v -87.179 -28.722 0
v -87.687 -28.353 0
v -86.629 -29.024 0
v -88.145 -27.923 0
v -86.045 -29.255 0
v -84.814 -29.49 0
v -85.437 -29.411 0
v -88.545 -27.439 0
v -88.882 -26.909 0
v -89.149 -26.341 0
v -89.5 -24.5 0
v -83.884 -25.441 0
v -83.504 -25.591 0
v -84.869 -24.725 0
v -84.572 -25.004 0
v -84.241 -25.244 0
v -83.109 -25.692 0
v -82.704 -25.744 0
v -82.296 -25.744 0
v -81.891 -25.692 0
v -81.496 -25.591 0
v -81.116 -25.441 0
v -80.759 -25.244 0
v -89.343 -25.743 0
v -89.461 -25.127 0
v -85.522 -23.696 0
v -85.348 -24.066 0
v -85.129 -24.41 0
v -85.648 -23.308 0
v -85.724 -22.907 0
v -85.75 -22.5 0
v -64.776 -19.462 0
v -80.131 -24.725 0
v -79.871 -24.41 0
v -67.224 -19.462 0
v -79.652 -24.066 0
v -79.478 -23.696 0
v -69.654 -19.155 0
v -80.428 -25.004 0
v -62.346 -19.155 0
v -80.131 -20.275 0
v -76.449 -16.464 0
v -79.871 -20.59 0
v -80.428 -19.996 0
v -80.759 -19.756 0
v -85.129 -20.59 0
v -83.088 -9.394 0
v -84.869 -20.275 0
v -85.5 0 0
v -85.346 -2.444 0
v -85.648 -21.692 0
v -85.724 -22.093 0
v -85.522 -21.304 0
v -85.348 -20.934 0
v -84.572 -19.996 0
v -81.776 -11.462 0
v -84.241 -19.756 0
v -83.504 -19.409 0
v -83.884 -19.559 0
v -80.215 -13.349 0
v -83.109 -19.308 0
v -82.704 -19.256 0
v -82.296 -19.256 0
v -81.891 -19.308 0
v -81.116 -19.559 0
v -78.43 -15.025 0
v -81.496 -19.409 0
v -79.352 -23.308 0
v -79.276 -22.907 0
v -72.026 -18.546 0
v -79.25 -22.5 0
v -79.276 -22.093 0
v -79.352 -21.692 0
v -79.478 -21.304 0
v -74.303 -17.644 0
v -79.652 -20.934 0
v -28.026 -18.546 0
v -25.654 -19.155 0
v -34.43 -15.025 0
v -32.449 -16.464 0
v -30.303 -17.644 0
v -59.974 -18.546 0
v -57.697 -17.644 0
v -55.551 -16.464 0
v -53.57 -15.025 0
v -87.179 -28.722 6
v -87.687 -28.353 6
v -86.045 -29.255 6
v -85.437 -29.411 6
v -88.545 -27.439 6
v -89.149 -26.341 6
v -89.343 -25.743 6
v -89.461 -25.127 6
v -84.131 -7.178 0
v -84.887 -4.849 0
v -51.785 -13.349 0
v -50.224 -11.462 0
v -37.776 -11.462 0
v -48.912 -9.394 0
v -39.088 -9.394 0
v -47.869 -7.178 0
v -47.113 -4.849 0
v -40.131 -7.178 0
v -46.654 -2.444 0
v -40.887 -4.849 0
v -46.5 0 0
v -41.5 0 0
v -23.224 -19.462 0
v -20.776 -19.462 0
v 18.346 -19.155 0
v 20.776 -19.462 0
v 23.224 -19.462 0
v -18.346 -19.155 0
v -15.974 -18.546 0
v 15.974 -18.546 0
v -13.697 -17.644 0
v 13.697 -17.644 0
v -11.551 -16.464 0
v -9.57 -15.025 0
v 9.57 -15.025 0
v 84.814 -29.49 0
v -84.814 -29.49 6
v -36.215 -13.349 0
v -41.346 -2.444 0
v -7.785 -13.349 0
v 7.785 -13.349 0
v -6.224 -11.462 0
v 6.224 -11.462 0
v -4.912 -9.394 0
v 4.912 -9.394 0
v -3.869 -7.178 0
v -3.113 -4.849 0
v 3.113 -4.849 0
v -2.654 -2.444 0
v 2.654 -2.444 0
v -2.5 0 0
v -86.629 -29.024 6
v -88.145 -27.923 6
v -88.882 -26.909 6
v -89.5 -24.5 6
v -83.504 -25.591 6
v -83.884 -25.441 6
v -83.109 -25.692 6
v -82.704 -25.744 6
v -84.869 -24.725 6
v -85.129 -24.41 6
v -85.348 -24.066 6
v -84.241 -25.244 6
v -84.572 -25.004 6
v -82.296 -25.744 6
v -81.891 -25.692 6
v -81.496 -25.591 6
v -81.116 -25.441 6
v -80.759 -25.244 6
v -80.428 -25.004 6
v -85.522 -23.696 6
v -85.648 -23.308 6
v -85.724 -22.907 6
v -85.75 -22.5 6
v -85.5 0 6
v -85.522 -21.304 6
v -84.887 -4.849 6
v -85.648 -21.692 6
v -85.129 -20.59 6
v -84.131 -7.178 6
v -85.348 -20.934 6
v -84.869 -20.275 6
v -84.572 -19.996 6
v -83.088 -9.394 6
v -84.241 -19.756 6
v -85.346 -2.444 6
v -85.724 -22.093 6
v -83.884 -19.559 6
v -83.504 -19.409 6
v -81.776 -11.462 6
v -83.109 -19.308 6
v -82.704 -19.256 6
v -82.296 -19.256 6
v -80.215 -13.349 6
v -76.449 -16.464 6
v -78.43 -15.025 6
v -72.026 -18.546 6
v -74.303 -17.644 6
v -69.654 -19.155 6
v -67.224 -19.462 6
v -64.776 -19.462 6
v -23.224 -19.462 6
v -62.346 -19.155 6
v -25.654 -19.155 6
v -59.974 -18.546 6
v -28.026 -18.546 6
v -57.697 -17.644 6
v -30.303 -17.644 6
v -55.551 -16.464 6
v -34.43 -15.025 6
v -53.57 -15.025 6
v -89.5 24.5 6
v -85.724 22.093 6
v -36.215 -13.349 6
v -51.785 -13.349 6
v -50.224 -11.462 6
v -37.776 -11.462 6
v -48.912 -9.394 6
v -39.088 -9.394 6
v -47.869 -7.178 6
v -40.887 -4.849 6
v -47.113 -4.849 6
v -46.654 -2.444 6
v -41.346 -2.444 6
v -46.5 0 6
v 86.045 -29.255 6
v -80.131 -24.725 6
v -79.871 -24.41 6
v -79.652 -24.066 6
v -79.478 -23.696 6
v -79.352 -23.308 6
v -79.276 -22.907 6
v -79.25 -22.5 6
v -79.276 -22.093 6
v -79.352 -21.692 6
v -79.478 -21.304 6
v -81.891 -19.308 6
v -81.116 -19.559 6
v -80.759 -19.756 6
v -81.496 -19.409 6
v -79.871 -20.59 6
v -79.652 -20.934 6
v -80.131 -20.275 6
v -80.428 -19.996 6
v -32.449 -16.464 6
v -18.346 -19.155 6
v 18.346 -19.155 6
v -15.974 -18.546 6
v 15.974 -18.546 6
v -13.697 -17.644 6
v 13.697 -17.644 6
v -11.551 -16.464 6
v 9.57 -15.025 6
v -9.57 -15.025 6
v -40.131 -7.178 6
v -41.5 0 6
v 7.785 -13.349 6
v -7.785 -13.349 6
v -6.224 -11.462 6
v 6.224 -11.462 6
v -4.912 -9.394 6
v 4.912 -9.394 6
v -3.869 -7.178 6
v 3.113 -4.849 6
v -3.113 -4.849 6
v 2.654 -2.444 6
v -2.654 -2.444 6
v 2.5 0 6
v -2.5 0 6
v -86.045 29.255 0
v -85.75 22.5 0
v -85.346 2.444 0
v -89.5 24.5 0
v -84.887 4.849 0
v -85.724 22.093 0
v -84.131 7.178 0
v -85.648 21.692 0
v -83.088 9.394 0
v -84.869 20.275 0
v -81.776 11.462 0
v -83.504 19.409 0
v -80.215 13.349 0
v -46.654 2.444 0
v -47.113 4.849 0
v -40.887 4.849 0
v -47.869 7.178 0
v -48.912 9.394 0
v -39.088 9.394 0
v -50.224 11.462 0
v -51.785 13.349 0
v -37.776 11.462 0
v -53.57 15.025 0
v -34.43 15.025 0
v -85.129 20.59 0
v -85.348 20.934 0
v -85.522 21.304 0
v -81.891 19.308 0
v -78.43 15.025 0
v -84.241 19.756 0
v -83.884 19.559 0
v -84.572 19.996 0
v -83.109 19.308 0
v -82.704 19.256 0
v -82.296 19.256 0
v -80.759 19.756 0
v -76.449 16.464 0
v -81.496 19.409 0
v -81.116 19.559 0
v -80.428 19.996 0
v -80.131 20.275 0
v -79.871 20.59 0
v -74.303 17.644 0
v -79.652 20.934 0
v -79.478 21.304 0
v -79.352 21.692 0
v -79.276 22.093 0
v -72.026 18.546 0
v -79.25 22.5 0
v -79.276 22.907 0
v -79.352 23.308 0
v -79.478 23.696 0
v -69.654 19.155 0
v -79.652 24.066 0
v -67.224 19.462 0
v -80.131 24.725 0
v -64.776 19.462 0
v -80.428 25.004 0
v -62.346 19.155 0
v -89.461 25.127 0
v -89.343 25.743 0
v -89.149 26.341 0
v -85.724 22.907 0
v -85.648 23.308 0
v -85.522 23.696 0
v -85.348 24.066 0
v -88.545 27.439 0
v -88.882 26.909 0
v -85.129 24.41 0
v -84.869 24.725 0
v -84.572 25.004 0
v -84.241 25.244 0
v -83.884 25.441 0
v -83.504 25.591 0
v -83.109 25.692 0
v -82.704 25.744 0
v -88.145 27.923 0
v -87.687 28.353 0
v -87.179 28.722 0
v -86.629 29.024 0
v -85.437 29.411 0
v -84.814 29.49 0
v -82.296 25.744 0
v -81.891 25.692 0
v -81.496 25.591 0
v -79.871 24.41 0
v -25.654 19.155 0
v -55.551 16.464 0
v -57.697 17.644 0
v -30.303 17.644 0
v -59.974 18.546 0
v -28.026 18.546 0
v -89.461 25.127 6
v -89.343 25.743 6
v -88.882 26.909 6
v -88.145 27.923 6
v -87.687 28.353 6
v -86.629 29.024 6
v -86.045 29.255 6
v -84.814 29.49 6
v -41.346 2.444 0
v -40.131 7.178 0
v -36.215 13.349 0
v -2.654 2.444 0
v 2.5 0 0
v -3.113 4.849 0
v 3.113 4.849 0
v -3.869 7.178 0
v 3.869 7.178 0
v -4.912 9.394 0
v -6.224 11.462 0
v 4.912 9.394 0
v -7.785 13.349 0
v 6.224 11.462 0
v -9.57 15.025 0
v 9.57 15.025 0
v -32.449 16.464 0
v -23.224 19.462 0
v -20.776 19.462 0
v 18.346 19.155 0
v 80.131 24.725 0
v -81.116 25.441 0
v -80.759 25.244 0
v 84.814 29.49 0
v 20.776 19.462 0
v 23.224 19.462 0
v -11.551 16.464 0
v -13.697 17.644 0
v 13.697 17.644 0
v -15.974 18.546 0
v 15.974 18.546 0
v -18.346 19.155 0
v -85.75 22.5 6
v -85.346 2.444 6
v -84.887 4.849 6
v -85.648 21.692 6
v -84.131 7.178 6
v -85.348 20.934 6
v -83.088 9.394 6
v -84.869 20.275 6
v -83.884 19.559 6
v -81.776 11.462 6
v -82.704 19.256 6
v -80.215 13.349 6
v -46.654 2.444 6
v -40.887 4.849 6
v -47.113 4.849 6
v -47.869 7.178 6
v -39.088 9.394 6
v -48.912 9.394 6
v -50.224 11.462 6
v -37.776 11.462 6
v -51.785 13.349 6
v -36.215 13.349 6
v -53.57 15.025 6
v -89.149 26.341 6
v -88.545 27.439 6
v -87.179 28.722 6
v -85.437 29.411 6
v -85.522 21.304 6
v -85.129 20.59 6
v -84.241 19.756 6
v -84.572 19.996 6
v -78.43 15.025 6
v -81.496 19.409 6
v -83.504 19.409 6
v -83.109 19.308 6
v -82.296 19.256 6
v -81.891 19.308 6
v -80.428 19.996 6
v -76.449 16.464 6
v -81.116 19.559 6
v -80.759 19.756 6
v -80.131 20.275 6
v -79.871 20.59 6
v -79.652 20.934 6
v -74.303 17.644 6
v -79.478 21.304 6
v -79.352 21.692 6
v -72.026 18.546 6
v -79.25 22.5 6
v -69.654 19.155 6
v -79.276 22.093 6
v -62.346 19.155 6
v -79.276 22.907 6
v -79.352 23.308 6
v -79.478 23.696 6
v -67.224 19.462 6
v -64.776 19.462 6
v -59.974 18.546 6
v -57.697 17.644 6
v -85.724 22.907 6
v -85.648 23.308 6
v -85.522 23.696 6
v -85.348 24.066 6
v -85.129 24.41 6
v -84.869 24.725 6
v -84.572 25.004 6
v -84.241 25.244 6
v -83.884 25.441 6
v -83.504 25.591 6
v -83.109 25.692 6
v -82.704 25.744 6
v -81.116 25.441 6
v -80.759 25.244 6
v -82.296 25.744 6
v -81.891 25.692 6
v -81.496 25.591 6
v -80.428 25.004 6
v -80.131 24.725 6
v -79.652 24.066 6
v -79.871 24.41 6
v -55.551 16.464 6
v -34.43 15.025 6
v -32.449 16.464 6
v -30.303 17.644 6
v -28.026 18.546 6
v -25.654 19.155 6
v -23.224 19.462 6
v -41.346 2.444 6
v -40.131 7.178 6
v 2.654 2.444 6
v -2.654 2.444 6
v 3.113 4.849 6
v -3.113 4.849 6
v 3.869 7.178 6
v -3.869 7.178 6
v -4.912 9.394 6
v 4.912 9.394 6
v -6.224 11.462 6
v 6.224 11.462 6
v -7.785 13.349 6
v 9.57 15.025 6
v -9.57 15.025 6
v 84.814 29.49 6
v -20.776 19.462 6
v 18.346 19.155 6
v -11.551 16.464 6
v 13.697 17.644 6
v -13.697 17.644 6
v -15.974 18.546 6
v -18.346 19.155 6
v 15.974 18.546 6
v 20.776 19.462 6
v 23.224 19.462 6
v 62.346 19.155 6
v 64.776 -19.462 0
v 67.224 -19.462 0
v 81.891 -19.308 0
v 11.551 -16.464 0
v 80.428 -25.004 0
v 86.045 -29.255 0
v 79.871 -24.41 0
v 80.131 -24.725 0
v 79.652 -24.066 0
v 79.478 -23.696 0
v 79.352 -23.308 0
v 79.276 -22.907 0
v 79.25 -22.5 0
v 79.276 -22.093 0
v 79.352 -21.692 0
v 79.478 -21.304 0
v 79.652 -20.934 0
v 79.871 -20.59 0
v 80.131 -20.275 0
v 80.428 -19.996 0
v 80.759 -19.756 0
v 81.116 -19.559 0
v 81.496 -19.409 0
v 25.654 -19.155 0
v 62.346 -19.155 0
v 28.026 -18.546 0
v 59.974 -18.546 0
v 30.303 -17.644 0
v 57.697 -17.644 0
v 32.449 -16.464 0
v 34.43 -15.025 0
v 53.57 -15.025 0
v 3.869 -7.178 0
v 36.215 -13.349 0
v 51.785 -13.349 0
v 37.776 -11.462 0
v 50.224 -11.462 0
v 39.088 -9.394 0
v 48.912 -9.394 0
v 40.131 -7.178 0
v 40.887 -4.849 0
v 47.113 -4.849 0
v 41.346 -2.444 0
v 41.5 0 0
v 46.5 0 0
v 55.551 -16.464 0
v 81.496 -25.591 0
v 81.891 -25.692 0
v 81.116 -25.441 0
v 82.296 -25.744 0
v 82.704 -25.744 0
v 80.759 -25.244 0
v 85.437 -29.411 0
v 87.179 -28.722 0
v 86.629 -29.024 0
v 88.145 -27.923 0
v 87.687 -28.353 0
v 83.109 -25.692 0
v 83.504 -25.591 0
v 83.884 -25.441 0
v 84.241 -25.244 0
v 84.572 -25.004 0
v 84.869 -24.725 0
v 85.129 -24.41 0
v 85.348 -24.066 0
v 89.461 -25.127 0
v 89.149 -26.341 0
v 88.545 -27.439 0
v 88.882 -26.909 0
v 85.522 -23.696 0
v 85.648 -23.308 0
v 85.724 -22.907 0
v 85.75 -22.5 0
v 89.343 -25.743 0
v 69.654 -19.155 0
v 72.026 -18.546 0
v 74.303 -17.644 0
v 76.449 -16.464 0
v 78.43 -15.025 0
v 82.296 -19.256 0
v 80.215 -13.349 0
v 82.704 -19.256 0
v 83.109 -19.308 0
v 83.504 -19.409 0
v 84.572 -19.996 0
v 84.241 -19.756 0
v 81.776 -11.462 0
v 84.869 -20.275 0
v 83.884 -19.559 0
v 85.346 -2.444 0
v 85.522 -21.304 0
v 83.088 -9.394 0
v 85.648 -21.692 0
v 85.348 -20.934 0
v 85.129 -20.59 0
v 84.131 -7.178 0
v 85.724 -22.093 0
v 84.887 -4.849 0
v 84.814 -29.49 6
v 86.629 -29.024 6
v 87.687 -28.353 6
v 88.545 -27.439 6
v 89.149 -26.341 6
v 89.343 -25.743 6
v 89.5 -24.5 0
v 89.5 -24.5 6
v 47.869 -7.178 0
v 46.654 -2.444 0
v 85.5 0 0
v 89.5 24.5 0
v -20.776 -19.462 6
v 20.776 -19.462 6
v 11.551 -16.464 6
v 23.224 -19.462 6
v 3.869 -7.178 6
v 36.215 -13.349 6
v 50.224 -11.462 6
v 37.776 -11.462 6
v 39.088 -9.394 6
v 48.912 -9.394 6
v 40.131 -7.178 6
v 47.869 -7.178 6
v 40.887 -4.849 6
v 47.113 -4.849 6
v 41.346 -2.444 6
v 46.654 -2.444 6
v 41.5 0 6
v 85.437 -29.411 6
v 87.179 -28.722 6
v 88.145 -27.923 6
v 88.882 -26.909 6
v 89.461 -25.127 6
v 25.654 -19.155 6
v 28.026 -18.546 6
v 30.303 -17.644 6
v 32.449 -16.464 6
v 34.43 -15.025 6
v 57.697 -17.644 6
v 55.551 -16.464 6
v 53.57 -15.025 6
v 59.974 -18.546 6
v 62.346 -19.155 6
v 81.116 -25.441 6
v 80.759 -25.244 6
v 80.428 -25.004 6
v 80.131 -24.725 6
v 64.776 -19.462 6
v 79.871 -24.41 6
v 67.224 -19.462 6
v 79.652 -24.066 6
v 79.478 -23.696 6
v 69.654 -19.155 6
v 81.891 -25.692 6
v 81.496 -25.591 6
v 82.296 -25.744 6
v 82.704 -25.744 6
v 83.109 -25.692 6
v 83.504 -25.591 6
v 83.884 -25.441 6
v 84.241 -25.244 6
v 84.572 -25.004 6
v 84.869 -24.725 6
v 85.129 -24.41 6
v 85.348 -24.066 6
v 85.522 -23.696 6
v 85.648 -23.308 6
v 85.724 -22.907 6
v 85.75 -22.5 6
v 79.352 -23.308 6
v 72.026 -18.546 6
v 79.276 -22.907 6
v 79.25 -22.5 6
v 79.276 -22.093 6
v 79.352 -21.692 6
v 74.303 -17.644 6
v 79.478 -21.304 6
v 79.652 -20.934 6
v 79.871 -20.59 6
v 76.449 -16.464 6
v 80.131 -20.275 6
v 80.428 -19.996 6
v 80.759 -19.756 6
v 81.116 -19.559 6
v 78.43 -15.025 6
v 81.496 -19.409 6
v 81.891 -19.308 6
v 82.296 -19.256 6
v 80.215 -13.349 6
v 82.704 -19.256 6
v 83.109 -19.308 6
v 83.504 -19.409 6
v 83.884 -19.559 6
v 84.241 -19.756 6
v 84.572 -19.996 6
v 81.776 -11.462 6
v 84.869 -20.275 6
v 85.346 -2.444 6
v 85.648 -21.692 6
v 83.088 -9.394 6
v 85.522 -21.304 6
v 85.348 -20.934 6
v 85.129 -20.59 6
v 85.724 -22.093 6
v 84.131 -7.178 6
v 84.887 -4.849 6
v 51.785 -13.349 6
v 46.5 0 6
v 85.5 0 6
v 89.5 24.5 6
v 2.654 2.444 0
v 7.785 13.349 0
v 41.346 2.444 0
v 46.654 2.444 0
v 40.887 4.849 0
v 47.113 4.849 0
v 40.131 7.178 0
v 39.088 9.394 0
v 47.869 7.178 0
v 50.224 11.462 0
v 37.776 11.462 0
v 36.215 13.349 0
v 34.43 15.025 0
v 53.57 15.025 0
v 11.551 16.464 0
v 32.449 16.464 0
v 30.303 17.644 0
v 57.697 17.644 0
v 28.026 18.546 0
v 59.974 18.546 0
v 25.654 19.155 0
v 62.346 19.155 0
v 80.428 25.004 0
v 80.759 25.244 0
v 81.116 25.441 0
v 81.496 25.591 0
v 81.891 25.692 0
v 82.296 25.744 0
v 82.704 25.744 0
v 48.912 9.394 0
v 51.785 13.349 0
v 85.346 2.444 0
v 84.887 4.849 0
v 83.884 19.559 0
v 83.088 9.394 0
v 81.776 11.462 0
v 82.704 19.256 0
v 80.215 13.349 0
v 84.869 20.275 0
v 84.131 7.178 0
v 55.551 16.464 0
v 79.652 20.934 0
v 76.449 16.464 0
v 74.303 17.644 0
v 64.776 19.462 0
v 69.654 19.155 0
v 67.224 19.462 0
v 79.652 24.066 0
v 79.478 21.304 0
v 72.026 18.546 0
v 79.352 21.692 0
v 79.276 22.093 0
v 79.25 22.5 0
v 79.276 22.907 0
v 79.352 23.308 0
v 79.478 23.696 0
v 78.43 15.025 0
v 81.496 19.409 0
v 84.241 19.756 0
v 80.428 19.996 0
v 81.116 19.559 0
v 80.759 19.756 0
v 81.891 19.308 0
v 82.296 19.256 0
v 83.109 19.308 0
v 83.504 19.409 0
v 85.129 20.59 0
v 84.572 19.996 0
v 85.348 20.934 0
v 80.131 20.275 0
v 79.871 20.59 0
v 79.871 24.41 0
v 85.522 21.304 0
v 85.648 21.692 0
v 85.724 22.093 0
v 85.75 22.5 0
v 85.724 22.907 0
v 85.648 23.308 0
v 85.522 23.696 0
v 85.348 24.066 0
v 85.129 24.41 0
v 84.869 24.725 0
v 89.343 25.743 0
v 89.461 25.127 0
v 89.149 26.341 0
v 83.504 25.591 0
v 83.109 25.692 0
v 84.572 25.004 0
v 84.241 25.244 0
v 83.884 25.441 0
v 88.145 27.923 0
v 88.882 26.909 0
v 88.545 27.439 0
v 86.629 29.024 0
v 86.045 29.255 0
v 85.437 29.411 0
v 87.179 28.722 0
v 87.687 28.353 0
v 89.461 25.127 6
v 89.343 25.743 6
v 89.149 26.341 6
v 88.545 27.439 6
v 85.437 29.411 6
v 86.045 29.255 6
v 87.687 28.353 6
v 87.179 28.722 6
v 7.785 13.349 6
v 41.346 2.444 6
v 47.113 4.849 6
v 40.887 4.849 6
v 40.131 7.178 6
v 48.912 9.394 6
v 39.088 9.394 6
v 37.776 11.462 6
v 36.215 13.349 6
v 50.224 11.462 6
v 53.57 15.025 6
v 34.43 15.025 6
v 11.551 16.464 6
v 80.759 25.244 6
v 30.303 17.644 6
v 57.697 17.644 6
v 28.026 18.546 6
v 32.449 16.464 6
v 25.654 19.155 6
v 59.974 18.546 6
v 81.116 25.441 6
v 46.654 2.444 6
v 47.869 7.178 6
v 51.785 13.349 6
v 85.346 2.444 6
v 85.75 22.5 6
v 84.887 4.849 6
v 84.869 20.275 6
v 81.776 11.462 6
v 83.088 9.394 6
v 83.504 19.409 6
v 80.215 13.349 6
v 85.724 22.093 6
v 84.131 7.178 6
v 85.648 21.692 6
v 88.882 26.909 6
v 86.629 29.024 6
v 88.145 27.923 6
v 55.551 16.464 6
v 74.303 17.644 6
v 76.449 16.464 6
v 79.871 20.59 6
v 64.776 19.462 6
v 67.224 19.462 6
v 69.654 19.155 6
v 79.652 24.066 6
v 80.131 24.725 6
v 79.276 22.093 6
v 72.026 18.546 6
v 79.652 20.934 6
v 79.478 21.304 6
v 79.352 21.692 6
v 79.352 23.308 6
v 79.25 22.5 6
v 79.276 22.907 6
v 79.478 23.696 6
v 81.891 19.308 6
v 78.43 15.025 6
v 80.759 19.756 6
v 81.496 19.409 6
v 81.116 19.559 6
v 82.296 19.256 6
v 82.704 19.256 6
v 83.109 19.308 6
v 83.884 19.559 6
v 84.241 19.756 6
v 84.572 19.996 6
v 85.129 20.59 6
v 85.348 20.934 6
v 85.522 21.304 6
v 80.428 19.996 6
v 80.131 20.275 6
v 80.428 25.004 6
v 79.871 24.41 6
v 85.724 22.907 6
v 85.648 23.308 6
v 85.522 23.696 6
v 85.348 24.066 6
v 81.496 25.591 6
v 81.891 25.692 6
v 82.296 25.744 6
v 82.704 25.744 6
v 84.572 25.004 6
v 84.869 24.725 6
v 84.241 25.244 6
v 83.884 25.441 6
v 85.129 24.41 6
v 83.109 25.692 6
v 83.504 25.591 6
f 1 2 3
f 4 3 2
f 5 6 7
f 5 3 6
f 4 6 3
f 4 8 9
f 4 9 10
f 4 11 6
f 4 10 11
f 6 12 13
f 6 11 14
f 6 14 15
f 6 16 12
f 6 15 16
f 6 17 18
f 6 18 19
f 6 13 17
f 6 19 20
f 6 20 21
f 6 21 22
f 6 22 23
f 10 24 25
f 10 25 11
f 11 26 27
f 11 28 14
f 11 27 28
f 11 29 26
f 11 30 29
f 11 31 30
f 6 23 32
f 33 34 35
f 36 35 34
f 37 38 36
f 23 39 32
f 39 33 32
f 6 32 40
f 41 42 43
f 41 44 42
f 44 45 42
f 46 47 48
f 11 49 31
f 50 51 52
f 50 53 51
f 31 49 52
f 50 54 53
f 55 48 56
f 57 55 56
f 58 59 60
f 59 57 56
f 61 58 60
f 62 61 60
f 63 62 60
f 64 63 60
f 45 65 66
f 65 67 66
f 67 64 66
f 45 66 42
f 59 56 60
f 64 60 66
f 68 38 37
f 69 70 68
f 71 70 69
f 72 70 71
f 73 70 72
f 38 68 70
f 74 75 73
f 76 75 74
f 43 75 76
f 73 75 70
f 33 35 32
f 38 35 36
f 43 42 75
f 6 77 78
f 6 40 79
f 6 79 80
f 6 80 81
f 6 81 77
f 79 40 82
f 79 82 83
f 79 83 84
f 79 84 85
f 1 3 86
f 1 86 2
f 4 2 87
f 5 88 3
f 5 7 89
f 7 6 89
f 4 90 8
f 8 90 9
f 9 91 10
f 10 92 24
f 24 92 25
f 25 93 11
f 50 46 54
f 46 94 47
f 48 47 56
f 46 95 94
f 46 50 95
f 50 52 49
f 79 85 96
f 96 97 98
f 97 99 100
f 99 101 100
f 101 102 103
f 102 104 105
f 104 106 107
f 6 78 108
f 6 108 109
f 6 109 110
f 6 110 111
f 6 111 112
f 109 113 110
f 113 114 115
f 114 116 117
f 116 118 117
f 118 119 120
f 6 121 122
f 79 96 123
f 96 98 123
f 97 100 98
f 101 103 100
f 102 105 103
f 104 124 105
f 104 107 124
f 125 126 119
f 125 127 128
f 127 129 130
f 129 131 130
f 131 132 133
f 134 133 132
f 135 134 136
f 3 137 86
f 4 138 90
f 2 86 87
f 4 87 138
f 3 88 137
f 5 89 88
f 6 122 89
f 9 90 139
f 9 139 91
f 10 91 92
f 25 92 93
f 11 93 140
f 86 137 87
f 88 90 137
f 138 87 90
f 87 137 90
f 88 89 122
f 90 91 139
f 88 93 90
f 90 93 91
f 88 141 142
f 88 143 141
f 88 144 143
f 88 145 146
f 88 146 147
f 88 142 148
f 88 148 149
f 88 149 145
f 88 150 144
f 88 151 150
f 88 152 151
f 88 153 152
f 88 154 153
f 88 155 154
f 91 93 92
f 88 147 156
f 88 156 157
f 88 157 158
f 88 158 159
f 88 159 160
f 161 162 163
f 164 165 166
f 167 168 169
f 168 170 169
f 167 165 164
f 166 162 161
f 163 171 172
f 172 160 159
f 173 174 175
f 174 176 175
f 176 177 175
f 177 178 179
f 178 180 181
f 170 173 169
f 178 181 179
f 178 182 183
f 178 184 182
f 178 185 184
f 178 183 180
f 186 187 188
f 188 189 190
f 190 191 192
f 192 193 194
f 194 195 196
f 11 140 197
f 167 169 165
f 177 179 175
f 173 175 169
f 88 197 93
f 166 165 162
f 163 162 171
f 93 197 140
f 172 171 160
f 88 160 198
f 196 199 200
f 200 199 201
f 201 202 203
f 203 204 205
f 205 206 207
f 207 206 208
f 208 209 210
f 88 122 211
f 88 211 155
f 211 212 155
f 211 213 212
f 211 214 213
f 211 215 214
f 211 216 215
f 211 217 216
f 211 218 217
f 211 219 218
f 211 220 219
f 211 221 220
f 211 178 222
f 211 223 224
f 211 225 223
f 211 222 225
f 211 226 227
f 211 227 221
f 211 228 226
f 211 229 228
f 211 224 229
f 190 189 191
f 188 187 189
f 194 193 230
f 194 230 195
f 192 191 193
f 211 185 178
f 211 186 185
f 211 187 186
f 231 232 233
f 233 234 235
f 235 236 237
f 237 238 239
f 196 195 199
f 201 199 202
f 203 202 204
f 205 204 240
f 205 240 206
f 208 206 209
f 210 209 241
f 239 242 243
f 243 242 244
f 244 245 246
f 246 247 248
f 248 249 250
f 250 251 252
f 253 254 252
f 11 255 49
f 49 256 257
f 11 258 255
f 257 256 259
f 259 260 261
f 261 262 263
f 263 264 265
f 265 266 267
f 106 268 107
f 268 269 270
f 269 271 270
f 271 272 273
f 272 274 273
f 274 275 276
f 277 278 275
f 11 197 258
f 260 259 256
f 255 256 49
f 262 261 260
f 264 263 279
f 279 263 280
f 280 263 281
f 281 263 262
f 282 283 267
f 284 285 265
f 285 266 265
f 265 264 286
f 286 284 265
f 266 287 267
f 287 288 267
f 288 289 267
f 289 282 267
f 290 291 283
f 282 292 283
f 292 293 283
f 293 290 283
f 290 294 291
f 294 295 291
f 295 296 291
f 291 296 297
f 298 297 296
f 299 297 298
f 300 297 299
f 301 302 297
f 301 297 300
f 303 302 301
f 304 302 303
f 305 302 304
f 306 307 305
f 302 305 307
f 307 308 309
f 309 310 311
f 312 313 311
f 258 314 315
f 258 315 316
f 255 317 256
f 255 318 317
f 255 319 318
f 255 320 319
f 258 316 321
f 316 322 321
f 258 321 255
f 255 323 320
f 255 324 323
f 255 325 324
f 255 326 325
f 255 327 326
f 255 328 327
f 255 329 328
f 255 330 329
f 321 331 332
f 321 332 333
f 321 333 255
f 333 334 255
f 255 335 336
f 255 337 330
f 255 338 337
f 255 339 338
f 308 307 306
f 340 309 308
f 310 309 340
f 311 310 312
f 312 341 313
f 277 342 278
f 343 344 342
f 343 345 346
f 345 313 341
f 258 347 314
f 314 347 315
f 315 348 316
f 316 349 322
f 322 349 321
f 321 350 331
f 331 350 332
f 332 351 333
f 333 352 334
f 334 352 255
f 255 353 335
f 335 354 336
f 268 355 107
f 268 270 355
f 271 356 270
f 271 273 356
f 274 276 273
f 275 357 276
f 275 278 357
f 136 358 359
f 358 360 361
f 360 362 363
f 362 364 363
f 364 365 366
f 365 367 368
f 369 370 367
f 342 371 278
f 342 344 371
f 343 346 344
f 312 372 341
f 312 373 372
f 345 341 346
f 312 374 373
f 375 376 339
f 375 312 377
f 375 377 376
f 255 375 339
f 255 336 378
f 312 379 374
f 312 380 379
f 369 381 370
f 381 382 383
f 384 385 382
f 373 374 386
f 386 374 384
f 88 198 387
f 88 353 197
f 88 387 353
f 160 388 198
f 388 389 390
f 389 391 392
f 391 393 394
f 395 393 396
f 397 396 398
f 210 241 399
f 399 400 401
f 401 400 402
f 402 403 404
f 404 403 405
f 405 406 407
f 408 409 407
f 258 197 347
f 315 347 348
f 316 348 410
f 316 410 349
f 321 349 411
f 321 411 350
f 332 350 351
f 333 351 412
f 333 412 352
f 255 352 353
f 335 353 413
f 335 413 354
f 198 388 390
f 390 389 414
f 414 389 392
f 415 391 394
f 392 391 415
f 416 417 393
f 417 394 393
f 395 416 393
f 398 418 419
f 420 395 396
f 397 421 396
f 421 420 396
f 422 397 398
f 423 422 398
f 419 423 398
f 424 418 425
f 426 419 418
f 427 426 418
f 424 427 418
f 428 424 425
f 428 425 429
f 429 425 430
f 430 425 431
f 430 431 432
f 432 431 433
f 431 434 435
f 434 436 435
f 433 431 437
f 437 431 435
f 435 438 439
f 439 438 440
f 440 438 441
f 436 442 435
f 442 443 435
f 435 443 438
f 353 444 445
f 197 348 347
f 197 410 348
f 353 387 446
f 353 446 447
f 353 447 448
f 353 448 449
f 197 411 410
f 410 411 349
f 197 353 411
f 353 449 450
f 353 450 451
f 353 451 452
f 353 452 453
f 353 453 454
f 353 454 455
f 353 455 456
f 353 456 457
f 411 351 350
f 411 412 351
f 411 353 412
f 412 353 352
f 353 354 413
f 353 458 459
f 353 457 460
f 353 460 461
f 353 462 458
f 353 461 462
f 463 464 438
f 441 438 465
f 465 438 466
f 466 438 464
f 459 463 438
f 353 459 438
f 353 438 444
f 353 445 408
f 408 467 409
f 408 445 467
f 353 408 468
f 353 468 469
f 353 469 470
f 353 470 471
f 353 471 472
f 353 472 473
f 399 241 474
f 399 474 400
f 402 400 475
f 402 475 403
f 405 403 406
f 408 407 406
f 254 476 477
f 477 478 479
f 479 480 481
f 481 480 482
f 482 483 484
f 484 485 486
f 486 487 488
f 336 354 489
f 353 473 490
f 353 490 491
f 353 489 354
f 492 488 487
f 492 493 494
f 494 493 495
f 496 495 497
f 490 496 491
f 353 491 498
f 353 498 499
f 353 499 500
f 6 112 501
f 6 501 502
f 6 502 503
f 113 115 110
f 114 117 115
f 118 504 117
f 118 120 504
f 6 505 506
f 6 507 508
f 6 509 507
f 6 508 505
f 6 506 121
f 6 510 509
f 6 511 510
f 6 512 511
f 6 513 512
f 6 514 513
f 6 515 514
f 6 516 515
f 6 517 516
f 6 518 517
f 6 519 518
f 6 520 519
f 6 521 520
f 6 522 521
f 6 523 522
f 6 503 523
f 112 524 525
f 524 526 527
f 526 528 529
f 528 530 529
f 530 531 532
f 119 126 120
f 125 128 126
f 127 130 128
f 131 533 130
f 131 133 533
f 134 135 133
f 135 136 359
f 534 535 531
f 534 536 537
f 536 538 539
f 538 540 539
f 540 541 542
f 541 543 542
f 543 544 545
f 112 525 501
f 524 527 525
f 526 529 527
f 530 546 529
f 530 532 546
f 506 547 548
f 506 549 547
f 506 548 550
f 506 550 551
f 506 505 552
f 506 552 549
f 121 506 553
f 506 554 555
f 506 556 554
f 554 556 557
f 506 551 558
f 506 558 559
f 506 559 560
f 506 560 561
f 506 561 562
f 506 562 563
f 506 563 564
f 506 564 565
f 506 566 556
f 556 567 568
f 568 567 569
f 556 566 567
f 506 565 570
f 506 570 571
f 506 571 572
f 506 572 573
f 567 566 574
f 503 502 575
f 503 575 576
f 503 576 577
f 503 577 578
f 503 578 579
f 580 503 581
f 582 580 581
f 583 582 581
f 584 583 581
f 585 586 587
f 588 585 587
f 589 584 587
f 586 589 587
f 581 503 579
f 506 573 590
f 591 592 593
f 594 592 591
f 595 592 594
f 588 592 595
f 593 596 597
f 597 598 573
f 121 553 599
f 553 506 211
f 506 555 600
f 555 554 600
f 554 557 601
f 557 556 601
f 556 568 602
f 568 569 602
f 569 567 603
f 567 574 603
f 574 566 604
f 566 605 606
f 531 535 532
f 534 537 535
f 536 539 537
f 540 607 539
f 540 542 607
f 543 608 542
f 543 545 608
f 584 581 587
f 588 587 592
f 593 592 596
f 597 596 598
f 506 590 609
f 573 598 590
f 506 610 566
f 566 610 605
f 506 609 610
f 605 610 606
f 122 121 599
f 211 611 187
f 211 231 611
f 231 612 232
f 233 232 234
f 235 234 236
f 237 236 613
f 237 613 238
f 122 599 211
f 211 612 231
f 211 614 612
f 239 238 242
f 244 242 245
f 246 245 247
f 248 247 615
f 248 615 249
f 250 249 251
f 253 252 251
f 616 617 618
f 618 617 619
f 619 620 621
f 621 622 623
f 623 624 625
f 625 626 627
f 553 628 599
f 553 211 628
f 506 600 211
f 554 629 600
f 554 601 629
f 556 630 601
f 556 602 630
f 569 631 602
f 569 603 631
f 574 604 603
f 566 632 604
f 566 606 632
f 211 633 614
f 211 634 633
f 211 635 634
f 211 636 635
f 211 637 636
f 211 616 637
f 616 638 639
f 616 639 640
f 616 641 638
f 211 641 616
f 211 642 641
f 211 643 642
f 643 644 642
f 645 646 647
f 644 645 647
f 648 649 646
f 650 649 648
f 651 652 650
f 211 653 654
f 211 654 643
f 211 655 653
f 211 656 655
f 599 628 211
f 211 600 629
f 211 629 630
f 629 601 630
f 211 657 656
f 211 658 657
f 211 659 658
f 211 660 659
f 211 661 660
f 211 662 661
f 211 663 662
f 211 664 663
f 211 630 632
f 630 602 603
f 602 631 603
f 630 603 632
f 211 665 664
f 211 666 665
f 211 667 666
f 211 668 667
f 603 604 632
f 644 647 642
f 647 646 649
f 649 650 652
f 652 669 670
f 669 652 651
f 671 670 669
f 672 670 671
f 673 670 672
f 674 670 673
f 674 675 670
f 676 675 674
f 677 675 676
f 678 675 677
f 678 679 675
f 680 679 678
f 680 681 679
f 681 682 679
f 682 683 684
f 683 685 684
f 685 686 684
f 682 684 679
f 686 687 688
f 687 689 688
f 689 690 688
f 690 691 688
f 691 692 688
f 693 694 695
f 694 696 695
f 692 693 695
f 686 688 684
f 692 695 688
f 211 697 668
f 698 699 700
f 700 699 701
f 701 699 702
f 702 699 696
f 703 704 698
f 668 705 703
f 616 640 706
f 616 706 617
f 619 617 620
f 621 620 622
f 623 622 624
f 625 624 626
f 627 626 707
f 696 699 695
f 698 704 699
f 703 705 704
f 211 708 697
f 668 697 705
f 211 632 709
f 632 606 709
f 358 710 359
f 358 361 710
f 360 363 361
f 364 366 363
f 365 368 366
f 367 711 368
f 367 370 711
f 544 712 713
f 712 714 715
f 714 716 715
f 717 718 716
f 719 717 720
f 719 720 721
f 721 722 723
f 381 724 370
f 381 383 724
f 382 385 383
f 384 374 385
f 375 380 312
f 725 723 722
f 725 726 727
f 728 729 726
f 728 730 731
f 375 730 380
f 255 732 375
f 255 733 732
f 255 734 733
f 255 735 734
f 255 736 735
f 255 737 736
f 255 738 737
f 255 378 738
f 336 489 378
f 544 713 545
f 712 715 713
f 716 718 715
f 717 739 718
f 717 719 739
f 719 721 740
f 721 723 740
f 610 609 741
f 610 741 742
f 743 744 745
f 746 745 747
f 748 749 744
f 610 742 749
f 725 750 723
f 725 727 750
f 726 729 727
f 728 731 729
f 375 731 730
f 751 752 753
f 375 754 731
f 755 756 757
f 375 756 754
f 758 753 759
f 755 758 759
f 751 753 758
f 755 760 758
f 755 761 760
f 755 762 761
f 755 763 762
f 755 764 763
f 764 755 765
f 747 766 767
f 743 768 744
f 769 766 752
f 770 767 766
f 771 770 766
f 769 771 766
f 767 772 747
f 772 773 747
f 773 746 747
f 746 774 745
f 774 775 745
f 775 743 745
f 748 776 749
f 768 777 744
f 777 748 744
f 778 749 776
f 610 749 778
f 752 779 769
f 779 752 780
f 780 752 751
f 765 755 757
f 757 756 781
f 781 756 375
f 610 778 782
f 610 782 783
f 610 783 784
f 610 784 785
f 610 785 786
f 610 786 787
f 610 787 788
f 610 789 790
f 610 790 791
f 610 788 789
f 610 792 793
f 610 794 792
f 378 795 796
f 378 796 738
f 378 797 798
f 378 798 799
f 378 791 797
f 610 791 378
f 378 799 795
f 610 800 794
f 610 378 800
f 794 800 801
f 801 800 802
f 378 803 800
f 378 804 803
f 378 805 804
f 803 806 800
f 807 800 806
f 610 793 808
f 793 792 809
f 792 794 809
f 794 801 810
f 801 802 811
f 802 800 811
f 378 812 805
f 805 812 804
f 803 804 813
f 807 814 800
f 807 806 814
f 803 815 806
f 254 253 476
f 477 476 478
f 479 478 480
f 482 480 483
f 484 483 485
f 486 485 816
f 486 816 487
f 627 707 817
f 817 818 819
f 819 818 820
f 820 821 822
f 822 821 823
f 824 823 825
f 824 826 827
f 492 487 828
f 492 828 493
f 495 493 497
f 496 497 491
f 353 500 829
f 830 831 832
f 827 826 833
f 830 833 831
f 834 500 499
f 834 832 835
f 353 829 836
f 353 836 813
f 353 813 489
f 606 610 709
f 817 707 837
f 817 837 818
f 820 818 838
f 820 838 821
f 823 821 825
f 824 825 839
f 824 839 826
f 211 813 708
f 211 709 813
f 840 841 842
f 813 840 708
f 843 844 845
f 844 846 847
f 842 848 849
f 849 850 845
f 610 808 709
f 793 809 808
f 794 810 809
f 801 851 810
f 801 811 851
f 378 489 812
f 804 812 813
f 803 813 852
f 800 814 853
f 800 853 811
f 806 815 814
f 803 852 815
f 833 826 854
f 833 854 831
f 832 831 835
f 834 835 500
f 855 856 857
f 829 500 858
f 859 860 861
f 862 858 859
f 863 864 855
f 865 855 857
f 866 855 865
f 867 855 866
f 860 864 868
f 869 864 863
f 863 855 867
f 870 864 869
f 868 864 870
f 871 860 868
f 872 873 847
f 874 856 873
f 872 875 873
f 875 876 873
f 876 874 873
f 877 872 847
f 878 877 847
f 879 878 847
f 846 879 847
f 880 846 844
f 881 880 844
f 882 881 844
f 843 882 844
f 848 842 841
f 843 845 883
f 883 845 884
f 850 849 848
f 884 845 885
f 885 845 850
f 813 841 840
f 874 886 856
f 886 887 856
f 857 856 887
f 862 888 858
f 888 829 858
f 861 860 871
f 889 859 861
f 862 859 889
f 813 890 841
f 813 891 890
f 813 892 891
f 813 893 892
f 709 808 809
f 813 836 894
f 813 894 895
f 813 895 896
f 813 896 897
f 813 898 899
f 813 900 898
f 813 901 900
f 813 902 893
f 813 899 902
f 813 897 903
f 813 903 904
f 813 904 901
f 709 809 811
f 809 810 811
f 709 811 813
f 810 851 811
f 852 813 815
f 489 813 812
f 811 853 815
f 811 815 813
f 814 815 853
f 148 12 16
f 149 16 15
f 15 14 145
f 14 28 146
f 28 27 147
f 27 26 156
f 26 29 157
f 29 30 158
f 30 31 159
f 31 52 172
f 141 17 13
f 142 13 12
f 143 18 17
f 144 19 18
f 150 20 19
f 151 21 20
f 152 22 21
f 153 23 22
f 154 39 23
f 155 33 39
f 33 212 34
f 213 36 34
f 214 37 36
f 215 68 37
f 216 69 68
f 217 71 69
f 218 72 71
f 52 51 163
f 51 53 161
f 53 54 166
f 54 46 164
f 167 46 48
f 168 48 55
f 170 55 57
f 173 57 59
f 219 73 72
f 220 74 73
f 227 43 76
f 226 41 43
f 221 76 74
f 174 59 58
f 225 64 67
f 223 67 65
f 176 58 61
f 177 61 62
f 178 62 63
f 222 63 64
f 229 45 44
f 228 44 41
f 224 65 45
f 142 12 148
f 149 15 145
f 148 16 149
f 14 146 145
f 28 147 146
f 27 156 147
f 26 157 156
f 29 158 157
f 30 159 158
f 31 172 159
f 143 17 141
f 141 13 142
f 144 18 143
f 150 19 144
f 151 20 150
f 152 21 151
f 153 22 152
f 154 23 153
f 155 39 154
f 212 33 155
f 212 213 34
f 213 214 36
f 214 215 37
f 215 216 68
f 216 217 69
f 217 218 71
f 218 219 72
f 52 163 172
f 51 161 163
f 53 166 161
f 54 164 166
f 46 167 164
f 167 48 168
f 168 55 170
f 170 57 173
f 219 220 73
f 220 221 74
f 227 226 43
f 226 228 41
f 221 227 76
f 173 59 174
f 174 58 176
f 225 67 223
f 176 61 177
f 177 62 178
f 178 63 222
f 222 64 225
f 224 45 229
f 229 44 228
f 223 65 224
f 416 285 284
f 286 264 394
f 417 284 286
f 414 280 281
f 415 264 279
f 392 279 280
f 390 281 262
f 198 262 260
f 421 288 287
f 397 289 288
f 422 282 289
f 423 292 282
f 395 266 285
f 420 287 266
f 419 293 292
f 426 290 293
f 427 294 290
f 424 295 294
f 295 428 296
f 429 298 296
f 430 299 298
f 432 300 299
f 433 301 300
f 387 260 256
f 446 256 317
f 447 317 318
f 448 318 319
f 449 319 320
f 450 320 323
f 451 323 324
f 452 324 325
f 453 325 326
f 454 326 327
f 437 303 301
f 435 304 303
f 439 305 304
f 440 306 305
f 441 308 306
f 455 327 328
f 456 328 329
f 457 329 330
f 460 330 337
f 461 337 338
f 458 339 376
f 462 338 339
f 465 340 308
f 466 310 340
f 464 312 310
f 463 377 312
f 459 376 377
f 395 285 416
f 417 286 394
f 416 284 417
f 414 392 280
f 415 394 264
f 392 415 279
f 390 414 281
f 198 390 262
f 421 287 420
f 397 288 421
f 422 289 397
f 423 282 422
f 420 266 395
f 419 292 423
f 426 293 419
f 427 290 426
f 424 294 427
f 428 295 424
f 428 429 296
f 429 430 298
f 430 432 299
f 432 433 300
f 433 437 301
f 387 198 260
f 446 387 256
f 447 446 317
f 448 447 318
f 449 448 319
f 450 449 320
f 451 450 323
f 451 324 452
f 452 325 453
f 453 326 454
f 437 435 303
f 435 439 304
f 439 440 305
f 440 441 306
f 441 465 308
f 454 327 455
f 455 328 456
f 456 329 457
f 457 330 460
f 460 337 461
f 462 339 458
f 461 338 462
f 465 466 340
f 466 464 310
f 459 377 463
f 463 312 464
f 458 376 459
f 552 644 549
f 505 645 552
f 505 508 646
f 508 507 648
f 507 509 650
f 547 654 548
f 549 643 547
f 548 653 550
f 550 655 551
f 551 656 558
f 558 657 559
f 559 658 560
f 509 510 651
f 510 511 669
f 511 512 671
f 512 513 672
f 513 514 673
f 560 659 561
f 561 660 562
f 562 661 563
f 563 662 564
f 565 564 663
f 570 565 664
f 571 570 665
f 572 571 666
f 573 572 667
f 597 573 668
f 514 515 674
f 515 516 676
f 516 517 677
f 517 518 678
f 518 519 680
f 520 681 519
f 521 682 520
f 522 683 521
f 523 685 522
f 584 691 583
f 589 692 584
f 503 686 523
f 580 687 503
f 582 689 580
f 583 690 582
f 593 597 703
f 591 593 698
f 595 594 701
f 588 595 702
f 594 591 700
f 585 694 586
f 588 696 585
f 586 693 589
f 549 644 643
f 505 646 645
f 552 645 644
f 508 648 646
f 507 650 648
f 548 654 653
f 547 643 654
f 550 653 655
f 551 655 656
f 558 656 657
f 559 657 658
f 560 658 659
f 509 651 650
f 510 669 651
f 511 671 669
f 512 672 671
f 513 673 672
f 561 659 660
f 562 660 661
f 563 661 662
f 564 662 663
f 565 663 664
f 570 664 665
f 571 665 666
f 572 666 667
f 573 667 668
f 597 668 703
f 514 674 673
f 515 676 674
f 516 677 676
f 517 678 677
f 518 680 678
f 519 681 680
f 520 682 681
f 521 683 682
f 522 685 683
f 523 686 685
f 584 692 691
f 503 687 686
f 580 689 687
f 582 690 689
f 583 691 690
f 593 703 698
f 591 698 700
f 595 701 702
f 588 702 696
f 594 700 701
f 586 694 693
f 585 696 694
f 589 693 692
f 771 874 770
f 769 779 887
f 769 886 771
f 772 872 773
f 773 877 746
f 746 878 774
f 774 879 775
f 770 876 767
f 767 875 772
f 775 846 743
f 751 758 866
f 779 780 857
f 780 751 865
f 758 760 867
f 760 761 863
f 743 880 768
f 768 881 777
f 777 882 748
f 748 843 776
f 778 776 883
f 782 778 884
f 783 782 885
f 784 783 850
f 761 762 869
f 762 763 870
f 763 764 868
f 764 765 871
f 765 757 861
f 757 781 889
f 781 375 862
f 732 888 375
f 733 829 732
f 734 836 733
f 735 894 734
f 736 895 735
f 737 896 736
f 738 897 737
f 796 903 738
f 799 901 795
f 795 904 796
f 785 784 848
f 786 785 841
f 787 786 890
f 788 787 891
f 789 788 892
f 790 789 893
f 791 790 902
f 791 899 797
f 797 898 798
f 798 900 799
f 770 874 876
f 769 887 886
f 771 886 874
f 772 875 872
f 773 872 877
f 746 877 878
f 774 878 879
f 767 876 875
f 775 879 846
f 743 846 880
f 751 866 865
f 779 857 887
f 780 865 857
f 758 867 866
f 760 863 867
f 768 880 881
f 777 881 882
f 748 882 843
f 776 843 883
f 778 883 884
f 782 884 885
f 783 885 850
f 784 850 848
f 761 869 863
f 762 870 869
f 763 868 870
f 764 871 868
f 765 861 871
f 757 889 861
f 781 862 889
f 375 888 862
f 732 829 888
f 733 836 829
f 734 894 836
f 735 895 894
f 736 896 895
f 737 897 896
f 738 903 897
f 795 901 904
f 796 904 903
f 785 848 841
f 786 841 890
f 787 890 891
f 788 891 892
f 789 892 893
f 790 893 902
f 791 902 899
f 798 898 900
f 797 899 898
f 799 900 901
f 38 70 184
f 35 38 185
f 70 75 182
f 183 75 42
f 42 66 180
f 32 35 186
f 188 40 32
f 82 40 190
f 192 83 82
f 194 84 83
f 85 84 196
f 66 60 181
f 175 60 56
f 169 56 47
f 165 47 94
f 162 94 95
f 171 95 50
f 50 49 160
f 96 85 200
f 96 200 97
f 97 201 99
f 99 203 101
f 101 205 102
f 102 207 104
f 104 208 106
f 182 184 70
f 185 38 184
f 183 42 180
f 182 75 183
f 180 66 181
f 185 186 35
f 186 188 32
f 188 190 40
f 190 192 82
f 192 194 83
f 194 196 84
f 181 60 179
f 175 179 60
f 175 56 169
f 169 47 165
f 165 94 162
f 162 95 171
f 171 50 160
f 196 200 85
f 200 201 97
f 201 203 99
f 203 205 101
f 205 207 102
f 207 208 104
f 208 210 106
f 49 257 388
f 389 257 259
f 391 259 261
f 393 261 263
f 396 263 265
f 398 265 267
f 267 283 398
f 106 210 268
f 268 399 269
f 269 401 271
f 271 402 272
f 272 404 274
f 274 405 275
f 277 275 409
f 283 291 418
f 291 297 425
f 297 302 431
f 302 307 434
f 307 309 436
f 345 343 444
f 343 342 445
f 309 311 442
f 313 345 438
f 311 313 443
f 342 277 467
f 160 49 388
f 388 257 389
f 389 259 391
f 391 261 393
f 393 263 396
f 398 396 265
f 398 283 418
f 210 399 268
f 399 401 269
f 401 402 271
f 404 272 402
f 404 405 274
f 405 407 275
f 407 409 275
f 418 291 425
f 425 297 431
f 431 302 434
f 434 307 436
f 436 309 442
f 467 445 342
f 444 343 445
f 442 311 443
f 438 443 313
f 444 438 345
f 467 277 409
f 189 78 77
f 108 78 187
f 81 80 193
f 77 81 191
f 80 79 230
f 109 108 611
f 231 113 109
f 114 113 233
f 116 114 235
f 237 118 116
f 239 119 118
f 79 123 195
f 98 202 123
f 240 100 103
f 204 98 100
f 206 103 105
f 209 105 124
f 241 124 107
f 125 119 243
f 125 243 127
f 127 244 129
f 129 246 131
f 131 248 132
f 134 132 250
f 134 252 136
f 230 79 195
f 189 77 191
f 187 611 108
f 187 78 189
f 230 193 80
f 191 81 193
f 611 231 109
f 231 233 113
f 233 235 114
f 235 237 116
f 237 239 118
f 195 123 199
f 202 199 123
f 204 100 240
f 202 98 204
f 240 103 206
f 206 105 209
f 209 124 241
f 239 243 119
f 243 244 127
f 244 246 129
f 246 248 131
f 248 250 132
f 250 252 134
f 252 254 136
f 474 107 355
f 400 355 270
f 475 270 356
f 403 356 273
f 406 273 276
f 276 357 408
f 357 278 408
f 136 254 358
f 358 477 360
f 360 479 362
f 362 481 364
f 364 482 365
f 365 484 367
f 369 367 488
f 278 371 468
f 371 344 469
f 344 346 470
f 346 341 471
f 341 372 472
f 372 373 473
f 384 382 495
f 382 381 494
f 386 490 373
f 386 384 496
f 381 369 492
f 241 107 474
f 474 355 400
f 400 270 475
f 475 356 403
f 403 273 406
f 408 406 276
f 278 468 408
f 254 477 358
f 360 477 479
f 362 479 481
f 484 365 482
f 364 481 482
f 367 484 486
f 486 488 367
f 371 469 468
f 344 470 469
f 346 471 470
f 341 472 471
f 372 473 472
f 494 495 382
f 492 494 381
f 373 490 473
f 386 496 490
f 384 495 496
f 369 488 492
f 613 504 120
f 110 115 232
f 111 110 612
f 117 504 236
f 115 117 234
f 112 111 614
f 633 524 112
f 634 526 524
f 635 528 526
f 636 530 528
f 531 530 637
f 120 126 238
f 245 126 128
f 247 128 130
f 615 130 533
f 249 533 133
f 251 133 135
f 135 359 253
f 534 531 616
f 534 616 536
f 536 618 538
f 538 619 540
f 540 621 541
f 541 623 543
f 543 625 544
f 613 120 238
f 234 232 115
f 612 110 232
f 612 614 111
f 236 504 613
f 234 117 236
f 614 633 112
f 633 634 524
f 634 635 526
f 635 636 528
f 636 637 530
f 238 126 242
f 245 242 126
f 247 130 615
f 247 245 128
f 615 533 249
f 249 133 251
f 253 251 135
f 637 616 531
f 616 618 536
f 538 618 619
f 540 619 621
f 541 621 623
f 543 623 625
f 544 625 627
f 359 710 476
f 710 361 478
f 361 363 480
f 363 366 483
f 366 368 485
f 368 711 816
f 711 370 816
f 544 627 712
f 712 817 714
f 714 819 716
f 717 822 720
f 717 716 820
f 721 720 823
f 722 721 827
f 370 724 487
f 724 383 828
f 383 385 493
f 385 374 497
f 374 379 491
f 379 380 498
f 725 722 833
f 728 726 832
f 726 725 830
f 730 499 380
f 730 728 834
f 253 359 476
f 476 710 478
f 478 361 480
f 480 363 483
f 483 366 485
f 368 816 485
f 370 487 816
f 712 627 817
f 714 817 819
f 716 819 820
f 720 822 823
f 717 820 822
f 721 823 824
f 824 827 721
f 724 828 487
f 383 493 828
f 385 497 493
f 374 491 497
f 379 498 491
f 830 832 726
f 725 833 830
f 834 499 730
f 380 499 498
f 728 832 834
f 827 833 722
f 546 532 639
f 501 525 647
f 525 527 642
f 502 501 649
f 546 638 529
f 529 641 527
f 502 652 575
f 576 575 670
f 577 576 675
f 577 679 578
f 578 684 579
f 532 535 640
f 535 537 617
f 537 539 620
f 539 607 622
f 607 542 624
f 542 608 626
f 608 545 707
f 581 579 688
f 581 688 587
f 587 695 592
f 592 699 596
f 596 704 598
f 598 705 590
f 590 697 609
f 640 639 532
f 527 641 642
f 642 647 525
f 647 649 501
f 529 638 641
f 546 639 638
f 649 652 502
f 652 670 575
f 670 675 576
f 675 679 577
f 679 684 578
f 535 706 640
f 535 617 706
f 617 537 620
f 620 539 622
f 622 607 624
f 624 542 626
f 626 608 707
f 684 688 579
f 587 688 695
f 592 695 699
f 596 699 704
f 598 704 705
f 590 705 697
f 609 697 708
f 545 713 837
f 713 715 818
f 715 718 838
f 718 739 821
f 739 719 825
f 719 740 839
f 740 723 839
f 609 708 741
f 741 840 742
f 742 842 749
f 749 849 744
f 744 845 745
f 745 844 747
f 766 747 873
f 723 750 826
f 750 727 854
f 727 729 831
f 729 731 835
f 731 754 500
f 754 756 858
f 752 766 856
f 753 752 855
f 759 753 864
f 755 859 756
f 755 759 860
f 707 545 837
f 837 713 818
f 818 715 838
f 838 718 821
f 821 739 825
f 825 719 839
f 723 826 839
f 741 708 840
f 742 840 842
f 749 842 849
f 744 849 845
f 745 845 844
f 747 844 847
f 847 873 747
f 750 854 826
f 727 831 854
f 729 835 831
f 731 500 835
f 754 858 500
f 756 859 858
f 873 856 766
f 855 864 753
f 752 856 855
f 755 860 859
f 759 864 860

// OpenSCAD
$fn = 50;

difference() {
	union() {
		hull() {
			translate(v = [-84.5, 24.5, 0]) {
				cylinder(h = 6, r = 5);
			}
			translate(v = [84.5, 24.5, 0]) {
				cylinder(h = 6, r = 5);
			}
			translate(v = [-84.5, -24.5, 0]) {
				cylinder(h = 6, r = 5);
			}
			translate(v = [84.5, -24.5, 0]) {
				cylinder(h = 6, r = 5);
			}
		}
	}
	union() {
		translate(v = [-82.5, -22.5, -100.0]) {
			cylinder(h = 200, r = 3.25);
		}
		translate(v = [-82.5, 22.5, -100.0]) {
			cylinder(h = 200, r = 3.25);
		}
		translate(v = [82.5, -22.5, -100.0]) {
			cylinder(h = 200, r = 3.25);
		}
		translate(v = [82.5, 22.5, -100.0]) {
			cylinder(h = 200, r = 3.25);
		}
		translate(v = [-82.5, -22.5, -100.0]) {
			cylinder(h = 200, r = 1.8);
		}
		translate(v = [-82.5, 22.5, -100.0]) {
			cylinder(h = 200, r = 1.8);
		}
		translate(v = [82.5, -22.5, -100.0]) {
			cylinder(h = 200, r = 1.8);
		}
		translate(v = [82.5, 22.5, -100.0]) {
			cylinder(h = 200, r = 1.8);
		}
		translate(v = [-66.0, 0, 0.0]) {
			cylinder(h = 6, r = 19.5);
		}
		translate(v = [-22.0, 0, 0.0]) {
			cylinder(h = 6, r = 19.5);
		}
		translate(v = [22.0, 0, 0.0]) {
			cylinder(h = 6, r = 19.5);
		}
		translate(v = [66.0, 0, 0.0]) {
			cylinder(h = 6, r = 19.5);
		}
	}
}
